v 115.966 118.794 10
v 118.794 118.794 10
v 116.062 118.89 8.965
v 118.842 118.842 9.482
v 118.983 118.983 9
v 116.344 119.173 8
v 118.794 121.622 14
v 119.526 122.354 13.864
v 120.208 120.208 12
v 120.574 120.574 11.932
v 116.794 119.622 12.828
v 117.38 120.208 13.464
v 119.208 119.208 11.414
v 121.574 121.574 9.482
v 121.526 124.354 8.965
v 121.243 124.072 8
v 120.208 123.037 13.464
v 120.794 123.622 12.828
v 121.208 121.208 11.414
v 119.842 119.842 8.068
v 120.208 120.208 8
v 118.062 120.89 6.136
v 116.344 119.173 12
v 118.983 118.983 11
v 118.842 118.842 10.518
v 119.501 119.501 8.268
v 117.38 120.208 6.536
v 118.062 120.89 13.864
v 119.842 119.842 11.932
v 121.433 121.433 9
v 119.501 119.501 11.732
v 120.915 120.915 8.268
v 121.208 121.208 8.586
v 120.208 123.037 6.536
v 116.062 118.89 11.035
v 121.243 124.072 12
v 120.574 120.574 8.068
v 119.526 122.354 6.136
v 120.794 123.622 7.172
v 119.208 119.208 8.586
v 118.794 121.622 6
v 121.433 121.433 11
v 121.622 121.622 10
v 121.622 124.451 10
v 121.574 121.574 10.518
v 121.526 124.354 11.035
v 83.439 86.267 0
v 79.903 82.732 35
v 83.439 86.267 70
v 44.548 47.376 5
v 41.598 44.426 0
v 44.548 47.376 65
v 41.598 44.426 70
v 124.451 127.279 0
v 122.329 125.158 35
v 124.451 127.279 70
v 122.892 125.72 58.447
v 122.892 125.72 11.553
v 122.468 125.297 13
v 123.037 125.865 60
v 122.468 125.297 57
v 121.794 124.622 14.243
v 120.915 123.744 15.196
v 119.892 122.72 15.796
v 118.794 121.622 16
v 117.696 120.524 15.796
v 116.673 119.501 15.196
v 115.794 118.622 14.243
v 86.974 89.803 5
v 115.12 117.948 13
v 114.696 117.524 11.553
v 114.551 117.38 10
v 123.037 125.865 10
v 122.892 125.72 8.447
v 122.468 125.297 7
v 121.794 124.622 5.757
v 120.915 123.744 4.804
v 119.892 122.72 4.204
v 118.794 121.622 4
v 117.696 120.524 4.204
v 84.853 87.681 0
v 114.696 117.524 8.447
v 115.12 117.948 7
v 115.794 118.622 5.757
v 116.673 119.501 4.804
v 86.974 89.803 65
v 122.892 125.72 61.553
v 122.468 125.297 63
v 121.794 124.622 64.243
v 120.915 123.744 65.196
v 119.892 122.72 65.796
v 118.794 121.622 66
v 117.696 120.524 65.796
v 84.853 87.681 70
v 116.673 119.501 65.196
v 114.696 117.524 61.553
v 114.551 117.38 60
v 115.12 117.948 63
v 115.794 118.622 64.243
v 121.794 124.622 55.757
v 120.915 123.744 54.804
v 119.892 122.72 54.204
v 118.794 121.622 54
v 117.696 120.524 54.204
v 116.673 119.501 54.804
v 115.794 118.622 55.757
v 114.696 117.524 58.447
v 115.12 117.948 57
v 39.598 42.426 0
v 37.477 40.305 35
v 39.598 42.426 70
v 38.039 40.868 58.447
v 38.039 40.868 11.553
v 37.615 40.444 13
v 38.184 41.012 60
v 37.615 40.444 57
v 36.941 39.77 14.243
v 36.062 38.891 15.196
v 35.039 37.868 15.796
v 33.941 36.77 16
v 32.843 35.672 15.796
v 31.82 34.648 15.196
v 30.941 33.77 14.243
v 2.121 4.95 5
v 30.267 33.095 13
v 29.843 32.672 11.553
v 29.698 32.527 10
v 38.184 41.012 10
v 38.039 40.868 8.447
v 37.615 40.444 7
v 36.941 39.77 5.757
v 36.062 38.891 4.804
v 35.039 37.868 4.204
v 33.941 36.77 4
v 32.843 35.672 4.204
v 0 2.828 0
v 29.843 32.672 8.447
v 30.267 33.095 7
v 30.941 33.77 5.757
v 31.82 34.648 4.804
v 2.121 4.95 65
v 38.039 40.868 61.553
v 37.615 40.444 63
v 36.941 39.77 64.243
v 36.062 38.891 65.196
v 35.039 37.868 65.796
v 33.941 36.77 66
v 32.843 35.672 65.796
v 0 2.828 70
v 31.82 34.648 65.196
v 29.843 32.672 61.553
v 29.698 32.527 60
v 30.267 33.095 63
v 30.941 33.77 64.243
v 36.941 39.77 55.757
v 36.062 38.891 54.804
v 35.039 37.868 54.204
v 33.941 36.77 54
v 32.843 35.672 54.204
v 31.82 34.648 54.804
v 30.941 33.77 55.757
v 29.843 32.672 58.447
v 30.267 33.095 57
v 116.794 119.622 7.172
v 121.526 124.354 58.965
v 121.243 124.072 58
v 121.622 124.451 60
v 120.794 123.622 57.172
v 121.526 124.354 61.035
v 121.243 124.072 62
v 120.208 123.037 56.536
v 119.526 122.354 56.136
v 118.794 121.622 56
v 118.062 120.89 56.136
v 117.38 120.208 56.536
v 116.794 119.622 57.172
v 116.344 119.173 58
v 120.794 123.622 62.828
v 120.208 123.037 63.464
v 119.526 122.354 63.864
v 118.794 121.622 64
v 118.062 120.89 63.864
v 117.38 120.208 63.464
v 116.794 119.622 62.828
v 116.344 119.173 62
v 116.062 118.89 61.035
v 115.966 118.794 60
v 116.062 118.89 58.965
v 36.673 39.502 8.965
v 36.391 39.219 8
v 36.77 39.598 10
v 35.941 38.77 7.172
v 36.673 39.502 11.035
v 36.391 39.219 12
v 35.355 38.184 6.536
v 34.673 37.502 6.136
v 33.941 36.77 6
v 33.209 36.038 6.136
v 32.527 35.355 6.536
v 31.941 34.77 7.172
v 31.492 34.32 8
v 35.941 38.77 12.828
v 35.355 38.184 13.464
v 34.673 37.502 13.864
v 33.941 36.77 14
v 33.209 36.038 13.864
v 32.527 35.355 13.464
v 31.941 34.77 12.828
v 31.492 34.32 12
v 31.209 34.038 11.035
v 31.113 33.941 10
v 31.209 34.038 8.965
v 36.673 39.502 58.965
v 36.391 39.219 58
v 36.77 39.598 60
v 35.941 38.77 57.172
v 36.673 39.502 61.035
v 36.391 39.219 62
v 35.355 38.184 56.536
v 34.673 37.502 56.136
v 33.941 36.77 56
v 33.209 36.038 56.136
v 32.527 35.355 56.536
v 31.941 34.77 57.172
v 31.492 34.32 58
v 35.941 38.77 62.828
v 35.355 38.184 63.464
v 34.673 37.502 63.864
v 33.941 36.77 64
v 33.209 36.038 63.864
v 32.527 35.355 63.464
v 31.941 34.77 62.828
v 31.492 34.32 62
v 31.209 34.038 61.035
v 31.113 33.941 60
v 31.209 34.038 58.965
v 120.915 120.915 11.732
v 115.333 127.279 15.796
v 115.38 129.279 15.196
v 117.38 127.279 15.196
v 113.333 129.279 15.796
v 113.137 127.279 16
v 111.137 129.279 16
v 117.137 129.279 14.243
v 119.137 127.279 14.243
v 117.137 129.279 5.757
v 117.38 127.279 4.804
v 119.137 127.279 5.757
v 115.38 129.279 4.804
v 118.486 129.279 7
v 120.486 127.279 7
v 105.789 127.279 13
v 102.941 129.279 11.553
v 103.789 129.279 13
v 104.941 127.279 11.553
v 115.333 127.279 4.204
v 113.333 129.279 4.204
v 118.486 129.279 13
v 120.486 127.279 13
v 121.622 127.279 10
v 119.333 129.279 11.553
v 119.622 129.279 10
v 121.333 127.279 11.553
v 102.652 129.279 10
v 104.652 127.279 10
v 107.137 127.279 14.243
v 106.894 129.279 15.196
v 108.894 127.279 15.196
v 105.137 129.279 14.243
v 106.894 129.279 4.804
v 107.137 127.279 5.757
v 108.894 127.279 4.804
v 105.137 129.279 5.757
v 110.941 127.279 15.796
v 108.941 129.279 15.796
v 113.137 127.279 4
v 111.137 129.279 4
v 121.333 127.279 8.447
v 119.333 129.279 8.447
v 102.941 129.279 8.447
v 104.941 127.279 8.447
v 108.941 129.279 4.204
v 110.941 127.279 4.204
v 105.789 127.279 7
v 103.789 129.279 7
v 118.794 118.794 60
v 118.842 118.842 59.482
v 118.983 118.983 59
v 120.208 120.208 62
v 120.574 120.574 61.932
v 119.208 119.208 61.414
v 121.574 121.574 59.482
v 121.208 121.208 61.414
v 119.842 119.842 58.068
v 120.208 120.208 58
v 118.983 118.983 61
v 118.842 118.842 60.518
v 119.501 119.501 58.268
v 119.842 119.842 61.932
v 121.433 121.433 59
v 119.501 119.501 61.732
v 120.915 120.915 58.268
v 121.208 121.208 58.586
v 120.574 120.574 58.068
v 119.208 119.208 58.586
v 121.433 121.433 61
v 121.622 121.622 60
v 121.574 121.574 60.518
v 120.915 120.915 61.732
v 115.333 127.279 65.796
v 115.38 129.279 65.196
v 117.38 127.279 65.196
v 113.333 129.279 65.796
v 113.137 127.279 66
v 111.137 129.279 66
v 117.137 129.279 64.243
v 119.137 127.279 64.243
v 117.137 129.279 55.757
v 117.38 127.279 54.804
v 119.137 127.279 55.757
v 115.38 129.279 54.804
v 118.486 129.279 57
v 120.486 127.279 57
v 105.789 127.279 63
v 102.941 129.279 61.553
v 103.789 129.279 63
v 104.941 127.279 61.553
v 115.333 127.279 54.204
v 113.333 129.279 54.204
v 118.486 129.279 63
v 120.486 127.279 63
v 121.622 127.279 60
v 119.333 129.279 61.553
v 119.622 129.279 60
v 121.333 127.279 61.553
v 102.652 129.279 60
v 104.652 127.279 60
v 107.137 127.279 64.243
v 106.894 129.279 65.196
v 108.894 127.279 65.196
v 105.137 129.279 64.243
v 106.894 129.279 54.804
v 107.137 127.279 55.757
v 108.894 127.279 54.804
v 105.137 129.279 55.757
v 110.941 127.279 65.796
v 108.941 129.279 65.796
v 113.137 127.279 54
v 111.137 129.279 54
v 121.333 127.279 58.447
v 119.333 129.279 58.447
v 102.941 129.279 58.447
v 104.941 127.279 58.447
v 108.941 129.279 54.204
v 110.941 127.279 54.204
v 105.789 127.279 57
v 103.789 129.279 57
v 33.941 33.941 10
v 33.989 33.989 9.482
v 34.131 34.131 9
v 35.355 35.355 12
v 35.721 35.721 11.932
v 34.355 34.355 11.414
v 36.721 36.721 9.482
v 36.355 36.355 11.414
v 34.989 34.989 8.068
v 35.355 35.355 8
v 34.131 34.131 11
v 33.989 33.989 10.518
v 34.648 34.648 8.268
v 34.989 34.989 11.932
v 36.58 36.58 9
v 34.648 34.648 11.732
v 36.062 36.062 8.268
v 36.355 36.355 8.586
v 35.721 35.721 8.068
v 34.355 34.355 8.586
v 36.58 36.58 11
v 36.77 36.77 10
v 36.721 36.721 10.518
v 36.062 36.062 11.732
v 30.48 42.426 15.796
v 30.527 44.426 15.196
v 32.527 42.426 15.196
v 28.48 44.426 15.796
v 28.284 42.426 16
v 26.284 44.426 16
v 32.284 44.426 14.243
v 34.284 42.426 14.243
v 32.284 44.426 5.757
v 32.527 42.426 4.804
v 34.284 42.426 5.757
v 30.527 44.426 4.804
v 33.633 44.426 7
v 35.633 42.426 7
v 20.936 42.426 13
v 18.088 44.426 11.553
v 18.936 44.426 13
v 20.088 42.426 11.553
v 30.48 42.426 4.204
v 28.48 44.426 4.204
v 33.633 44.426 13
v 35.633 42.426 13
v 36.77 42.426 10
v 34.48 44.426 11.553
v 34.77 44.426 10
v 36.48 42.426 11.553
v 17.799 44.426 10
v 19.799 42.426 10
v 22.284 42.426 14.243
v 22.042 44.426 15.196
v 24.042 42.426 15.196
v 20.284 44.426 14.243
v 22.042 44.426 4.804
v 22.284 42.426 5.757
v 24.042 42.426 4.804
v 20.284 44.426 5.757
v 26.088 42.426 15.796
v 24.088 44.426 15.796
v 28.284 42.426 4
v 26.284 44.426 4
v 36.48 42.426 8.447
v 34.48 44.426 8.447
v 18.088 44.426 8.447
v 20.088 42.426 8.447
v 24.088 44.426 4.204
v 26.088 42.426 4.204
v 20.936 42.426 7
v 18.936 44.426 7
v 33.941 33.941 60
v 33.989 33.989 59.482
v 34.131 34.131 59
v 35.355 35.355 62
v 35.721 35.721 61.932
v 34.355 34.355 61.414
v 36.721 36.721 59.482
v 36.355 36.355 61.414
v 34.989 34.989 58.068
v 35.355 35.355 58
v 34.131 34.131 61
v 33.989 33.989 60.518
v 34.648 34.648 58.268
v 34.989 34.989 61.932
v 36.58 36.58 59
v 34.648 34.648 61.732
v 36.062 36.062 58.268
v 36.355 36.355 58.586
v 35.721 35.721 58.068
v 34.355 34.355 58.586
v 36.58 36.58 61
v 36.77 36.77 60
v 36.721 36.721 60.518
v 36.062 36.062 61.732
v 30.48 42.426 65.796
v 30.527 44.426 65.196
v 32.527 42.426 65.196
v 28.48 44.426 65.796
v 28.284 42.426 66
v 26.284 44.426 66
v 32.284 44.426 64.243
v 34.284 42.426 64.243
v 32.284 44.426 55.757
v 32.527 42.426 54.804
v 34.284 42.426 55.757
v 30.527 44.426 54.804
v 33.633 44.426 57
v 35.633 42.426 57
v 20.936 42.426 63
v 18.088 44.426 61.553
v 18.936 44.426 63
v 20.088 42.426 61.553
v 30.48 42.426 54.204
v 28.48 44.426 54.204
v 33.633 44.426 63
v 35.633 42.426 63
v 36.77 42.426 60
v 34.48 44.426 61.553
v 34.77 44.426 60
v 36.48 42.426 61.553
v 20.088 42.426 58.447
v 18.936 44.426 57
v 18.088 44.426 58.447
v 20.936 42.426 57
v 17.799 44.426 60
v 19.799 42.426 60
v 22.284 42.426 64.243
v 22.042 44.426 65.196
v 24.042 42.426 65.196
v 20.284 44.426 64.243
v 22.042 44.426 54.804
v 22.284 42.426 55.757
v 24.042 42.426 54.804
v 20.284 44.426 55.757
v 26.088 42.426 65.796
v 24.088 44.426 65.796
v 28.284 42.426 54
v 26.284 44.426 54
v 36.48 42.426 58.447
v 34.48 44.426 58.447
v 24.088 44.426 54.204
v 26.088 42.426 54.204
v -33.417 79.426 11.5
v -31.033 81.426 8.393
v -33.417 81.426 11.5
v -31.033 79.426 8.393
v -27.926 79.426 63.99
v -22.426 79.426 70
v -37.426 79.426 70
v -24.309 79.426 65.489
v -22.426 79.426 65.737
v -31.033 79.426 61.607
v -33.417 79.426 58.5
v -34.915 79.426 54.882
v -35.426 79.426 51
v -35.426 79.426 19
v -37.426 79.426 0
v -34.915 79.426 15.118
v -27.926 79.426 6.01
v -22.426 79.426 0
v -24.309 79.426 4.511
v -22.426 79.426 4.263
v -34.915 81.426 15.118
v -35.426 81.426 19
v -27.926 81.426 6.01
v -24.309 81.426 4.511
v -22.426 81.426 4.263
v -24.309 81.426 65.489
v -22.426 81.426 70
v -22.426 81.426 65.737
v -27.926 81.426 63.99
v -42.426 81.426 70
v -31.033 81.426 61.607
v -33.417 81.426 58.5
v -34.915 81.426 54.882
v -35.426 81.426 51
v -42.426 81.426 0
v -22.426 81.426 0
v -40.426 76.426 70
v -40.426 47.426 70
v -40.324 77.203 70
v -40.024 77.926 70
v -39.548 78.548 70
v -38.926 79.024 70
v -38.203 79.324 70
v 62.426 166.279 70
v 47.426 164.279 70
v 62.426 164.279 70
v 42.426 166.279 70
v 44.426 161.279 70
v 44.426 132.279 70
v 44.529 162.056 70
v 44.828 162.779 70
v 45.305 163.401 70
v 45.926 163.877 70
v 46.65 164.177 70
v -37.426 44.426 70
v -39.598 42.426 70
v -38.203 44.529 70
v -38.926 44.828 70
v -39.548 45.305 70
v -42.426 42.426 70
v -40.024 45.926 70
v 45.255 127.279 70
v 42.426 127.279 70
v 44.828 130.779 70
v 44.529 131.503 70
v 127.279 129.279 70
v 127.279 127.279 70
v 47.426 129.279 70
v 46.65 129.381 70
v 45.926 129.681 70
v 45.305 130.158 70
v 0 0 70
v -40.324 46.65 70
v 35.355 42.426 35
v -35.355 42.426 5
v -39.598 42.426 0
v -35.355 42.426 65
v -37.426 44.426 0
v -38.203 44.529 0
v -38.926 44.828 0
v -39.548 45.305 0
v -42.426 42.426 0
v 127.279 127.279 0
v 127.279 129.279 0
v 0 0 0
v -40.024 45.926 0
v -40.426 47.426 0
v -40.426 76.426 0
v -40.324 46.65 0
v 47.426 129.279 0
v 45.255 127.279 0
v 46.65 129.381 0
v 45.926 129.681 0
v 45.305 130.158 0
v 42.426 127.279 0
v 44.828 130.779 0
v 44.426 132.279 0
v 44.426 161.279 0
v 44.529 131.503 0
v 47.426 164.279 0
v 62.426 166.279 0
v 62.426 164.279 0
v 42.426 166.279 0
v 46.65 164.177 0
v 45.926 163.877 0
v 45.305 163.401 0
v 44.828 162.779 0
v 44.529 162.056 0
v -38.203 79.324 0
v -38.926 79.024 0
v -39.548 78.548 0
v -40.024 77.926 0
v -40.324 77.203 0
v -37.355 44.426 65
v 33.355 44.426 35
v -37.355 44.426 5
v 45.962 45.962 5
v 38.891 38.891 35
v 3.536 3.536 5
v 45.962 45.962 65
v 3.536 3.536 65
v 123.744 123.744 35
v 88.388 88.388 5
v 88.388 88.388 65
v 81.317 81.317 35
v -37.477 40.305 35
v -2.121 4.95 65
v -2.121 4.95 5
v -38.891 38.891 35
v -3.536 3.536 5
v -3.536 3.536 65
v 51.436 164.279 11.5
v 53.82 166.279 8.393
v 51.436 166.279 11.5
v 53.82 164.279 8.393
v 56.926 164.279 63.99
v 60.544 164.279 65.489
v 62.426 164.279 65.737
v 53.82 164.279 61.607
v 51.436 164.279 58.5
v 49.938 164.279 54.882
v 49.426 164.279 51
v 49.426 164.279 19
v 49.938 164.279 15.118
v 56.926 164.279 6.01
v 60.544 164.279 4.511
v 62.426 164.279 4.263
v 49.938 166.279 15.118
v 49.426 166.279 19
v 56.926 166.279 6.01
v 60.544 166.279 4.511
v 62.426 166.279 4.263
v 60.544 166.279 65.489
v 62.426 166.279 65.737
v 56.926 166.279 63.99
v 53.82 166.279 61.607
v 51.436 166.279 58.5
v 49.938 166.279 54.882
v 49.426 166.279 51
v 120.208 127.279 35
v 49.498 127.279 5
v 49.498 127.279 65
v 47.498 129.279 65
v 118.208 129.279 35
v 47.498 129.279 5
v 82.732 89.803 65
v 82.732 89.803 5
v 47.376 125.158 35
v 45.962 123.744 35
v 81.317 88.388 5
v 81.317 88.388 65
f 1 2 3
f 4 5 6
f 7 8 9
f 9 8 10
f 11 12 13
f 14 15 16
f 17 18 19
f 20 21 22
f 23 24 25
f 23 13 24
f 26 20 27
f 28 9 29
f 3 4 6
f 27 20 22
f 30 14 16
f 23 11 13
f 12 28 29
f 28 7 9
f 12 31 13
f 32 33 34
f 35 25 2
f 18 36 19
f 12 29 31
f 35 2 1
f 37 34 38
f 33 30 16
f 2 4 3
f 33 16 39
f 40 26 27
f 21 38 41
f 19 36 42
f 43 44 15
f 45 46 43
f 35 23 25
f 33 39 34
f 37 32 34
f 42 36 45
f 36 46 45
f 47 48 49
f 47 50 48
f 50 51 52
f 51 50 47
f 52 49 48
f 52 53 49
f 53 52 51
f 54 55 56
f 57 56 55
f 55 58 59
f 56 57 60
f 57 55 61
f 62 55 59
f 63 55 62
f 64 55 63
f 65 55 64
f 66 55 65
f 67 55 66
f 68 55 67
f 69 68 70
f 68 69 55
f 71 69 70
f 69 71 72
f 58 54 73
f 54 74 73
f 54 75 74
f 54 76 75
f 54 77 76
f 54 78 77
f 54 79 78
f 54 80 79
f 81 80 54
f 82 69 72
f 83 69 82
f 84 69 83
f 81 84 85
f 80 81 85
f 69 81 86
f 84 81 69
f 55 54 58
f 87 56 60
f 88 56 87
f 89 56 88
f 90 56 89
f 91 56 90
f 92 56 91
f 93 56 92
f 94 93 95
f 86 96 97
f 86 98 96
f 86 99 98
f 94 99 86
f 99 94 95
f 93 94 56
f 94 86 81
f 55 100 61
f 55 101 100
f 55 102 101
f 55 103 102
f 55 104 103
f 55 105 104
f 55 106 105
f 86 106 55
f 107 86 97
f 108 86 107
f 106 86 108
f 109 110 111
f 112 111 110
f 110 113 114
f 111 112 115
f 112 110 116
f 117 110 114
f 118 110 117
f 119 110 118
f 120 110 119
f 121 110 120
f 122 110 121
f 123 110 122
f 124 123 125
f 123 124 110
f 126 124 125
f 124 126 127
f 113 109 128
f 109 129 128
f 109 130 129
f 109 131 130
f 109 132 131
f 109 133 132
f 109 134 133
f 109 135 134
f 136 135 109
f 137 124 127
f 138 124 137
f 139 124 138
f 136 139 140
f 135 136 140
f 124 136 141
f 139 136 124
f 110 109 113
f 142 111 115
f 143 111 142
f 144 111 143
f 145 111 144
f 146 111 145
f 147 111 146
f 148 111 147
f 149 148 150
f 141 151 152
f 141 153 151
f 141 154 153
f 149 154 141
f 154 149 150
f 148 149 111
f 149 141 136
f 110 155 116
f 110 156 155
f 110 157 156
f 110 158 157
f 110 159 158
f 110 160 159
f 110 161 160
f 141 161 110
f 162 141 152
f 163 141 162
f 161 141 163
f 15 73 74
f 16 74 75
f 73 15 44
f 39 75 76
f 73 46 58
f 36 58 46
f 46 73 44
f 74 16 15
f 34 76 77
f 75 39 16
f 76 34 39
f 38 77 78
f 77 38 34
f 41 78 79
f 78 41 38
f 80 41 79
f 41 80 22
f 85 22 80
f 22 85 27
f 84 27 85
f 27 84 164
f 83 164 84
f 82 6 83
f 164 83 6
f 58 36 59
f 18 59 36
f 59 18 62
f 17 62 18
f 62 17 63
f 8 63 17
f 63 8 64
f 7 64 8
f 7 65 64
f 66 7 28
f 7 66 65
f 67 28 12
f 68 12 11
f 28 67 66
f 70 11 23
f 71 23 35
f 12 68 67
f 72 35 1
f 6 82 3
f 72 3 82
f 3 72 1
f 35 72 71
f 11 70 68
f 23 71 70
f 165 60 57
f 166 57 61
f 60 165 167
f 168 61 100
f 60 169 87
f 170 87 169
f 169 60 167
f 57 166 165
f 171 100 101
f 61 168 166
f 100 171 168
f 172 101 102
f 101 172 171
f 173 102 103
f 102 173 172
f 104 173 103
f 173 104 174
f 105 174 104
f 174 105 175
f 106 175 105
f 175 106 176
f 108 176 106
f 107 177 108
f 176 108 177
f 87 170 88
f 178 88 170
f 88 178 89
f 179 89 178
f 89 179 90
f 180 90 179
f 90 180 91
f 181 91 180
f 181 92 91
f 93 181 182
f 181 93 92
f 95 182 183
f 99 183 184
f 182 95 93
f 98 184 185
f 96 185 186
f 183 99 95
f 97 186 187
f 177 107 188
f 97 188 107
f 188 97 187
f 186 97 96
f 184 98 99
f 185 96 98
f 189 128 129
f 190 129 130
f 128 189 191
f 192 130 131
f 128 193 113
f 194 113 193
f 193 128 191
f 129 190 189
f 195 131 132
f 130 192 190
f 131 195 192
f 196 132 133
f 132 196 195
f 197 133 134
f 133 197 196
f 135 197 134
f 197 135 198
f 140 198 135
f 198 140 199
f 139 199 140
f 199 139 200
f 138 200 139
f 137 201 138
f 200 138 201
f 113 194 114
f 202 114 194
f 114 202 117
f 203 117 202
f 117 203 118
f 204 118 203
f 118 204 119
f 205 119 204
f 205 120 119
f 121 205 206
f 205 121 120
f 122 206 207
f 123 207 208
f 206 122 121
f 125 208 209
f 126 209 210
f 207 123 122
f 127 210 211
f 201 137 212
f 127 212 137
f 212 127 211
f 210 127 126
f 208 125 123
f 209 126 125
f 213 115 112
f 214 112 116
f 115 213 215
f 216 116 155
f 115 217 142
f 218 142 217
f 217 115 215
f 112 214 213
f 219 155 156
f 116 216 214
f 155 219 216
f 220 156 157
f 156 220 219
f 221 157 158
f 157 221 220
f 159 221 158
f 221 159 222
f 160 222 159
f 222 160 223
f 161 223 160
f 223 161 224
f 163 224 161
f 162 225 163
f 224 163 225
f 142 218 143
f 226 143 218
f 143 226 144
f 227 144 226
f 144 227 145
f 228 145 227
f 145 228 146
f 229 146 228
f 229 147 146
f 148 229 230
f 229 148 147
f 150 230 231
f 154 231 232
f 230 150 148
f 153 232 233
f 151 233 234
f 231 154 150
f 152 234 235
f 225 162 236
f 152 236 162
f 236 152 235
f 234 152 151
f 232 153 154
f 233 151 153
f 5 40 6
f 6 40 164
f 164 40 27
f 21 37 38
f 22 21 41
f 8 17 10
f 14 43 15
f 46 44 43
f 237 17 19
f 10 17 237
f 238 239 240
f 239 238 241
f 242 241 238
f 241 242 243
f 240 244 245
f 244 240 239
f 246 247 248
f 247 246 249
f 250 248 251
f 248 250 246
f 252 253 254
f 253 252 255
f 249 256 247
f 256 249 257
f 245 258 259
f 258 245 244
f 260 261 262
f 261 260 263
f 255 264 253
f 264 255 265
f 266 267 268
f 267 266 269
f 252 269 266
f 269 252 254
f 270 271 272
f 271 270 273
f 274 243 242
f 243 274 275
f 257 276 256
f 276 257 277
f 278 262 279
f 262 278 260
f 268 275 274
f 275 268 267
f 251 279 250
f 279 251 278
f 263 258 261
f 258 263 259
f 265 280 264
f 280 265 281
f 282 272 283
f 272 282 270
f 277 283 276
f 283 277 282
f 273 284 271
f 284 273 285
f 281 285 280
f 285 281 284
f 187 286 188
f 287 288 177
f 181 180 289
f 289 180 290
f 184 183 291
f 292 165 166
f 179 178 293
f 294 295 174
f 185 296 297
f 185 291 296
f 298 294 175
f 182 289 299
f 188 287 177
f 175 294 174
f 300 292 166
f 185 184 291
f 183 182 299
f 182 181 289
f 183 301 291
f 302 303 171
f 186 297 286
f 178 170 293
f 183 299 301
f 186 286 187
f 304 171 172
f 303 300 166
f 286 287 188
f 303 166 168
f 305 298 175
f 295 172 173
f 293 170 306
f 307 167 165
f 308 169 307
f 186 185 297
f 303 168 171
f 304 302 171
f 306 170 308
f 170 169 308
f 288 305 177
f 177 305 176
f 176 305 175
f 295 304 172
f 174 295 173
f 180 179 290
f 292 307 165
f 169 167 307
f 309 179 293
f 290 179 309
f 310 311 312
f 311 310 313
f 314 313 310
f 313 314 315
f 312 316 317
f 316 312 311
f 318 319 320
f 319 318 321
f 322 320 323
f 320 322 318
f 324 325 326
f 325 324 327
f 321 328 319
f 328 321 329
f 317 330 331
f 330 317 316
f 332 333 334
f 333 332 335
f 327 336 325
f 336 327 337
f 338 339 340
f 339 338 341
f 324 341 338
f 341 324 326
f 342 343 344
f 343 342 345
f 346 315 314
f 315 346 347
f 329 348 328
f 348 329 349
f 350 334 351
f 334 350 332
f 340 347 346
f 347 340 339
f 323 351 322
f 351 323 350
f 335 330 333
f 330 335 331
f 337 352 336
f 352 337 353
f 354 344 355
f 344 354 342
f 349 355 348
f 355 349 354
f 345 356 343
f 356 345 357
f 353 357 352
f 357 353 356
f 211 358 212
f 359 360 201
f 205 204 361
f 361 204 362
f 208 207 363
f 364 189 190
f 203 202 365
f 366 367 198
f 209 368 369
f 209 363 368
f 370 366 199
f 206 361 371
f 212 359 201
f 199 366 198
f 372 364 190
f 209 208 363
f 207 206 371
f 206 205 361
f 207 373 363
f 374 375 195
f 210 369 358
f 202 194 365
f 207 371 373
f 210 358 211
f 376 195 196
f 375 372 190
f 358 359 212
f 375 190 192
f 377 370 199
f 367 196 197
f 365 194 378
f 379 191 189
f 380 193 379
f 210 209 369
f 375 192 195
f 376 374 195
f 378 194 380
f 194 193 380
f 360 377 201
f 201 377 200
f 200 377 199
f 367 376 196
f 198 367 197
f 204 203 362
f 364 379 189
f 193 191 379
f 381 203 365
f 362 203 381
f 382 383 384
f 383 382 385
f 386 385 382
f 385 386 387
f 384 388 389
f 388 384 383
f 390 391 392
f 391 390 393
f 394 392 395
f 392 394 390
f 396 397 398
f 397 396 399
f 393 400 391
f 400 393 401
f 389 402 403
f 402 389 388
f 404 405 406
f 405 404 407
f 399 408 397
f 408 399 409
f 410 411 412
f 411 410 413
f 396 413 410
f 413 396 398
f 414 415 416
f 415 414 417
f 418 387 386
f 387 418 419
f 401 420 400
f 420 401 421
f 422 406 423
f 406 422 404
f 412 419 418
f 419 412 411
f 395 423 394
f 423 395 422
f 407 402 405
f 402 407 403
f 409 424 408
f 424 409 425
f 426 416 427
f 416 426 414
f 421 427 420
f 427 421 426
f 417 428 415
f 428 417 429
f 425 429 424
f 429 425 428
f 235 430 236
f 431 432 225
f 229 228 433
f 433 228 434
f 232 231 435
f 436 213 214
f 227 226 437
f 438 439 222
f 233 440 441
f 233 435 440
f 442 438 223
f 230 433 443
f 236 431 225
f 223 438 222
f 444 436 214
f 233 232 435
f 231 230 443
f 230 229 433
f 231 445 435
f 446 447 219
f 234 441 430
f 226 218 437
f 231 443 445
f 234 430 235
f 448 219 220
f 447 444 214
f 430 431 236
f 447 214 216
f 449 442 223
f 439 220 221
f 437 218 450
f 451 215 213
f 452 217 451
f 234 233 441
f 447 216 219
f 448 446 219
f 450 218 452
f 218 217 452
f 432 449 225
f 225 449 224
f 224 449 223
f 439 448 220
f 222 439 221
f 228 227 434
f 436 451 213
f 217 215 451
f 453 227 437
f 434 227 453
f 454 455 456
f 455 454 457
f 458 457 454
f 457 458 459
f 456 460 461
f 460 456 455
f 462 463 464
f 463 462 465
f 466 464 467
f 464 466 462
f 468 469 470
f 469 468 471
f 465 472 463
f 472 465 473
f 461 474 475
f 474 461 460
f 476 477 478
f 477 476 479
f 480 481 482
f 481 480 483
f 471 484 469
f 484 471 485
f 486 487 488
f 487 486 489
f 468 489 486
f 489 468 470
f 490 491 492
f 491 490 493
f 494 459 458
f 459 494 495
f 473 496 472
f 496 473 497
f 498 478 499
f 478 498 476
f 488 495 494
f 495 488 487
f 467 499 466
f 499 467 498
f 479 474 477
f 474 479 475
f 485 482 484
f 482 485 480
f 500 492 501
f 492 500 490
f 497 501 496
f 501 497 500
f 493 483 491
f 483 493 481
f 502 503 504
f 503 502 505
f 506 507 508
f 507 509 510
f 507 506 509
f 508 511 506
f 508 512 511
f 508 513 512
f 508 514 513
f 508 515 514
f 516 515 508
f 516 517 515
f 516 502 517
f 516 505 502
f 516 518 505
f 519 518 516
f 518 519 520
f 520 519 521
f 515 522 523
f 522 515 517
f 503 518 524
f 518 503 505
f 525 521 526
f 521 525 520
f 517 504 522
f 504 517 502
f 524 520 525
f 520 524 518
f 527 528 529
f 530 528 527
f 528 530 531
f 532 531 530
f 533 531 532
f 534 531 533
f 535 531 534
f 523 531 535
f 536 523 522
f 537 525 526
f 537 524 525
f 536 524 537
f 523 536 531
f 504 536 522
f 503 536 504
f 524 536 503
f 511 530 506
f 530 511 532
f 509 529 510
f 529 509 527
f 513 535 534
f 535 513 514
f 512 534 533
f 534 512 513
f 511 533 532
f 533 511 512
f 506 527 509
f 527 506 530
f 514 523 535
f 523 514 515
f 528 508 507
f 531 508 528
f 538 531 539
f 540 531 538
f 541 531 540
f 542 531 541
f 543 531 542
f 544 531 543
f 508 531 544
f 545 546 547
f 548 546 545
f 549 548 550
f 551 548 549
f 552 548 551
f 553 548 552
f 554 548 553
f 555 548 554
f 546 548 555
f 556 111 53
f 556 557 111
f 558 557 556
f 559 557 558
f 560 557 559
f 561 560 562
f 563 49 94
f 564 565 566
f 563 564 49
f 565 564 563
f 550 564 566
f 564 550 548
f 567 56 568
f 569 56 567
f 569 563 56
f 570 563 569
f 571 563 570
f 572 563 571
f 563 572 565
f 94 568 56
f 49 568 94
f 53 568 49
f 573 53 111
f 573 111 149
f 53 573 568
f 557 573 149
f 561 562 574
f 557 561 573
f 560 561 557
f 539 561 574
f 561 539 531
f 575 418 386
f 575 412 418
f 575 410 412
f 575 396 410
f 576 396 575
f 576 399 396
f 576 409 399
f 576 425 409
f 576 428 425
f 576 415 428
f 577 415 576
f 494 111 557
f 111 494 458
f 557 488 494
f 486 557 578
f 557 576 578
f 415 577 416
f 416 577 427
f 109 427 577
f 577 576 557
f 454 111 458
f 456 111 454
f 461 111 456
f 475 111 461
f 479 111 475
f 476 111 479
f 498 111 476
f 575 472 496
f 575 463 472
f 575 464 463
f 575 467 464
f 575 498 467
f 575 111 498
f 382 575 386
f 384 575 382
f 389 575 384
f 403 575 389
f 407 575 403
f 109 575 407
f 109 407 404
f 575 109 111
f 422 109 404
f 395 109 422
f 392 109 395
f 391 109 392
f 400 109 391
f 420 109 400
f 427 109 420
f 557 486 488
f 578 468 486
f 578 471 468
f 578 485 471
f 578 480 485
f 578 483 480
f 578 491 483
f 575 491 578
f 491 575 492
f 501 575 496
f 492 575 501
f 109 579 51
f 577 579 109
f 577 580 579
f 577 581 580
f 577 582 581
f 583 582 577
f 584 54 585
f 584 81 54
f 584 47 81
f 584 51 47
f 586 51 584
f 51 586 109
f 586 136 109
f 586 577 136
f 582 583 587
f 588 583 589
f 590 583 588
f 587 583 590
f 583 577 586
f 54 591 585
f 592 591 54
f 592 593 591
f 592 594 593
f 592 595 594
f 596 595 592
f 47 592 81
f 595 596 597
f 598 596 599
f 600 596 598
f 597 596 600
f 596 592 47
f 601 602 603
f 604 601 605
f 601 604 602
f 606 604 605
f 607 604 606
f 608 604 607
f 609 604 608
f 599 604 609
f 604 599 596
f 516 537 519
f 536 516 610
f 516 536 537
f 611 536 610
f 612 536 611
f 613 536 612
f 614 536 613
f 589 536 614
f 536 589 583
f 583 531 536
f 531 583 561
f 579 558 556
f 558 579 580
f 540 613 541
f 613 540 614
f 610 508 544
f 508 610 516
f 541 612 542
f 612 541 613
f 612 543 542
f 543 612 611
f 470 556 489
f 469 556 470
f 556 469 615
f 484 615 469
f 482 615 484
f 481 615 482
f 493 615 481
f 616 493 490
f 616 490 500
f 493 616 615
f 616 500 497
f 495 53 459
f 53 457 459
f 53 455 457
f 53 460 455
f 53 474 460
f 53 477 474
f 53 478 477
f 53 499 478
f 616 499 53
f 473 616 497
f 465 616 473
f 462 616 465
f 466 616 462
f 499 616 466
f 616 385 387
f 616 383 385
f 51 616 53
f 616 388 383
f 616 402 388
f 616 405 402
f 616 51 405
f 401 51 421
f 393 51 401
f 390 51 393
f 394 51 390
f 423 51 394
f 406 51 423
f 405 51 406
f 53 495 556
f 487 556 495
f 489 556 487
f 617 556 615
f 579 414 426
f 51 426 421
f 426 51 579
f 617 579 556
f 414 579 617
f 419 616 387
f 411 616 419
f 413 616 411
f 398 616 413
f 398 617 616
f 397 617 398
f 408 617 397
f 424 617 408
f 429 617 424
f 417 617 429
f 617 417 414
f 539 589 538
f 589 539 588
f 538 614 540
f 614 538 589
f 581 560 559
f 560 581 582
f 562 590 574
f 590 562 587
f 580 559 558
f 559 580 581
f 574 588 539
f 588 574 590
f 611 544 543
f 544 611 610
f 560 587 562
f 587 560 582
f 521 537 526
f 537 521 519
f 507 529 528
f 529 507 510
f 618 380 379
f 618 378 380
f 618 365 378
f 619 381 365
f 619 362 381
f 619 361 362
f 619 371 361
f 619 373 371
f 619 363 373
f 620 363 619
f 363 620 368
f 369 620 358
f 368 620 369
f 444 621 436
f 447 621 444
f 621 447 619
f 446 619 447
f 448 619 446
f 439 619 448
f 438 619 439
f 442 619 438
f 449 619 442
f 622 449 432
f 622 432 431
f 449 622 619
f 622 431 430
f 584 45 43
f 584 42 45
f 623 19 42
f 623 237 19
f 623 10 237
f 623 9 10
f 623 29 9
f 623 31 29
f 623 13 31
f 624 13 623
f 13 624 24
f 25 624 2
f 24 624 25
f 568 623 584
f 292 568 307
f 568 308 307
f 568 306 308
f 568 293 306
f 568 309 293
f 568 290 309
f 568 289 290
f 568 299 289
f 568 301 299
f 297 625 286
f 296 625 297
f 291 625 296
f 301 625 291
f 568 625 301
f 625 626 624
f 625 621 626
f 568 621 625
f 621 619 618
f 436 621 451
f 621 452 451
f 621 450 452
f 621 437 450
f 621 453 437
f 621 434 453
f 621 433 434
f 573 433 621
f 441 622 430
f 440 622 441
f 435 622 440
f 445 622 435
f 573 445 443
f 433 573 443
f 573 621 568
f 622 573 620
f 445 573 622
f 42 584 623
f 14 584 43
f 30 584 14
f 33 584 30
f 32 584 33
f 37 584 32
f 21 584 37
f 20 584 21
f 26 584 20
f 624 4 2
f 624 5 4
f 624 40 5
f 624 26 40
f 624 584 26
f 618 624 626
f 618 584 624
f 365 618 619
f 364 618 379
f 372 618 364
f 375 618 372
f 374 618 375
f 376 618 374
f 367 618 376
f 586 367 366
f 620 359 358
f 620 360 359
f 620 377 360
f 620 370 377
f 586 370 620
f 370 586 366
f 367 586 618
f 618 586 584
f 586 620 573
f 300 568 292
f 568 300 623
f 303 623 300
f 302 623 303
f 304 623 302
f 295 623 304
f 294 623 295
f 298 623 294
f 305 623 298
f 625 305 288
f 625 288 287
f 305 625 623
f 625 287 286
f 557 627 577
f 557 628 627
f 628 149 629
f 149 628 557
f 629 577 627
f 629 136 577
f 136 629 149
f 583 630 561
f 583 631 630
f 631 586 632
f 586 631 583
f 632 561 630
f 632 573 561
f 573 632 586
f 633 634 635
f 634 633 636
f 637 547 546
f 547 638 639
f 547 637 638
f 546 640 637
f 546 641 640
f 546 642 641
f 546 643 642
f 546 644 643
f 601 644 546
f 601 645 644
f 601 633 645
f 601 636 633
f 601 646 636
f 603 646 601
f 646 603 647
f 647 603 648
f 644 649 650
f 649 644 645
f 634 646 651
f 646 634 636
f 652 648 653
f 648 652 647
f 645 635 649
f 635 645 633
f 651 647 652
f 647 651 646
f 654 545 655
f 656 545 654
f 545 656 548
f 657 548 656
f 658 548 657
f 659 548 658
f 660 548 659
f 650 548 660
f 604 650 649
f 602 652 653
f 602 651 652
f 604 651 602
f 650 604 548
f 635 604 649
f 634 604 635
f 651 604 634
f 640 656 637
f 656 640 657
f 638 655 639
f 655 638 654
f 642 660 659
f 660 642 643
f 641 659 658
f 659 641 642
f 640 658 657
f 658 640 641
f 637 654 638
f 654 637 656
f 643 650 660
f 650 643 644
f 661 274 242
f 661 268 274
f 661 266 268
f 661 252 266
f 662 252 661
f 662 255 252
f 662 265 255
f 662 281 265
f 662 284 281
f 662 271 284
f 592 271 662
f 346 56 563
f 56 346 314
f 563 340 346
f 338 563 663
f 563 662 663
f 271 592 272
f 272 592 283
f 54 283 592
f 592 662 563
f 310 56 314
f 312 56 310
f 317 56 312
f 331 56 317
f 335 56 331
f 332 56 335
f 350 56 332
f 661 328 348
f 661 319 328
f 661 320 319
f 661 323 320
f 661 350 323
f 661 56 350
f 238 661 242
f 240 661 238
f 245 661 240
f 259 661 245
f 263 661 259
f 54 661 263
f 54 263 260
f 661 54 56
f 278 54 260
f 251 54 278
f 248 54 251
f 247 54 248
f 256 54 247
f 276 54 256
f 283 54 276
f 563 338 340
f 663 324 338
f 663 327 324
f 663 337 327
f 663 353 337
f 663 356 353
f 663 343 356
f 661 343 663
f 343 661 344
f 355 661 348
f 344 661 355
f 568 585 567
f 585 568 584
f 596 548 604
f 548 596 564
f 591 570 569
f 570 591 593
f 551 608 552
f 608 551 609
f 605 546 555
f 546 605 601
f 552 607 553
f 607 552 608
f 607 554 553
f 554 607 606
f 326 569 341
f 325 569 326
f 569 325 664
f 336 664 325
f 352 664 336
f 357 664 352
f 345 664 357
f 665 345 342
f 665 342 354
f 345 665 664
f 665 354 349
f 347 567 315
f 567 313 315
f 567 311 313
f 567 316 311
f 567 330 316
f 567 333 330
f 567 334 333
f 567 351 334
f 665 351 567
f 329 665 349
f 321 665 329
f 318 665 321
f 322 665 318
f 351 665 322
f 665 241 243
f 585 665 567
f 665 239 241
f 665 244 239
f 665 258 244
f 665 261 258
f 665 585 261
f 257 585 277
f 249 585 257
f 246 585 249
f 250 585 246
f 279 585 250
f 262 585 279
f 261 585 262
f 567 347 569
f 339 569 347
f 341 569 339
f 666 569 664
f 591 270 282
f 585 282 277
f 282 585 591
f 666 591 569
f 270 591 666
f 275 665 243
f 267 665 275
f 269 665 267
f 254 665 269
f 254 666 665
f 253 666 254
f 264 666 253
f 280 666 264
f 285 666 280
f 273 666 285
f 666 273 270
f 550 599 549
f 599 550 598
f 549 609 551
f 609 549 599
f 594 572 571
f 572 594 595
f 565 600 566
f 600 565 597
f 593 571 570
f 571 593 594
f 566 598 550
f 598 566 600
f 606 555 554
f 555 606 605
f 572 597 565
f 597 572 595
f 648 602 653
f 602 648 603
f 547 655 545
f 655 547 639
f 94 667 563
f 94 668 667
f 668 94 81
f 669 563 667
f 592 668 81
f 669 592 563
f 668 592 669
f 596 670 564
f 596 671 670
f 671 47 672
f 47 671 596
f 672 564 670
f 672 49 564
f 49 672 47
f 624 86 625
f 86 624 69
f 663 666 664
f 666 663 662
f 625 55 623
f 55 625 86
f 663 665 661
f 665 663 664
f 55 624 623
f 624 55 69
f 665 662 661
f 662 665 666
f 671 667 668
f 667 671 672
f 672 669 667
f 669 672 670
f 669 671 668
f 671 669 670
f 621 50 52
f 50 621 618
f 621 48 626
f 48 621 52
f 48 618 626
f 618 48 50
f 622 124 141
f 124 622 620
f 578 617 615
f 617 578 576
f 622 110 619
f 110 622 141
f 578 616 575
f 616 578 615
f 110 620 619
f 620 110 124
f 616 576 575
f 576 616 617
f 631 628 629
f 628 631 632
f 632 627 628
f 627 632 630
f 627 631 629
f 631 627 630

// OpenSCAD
width = 70;
height = 180;
controller_thickness = 39;
$fn = 24;

rotate([0, -90, -45])

difference() {
    union() {
        cube([width, height, 2]);

        translate([0, height*2/3, 0])
        hanger();

        hanger();
    }
    
    diff_thickness = height/3;

    // top
    translate([0, height*2/3, 0])
    triangle(5, diff_thickness);
    
    translate([0, height*2/3+2, 0])
    rotate([90, 0, 0])
    triangle(5);
    
    translate([10, height-10, 2]) {
        screw_hole(4, 10);
        cylinder(100, 6, 6);
    }
    translate([width-10, height-10, 2]) {
        screw_hole(4, 10);
        cylinder(100, 6, 6);
    }

    // mid
    translate([0, height/3, 0])
    triangle(5);

    // bottom
    triangle(5, diff_thickness);
    
    translate([0, 2, 0])
    rotate([90, 0, 0])
    triangle(5);
    
    translate([10, height/3-10, 2]) {
        screw_hole(4, 10);
        cylinder(100, 6, 6);
    }
    translate([width-10, height/3-10, 2]) {
        screw_hole(4, 10);
        cylinder(100, 6, 6);
    }
}

module triangle(_margin, _thickness=2) {
    color([1, 0, 0])
    linear_extrude(_thickness)
    polygon([
        [_margin, _margin],          // left
        [width/2, height/3-_margin], // top
        [width-_margin, _margin],    // right
    ]);
}

module hanger() {
    _height = height/3/cos(45);
    
    color([1, 0, 0])
    translate([0, 0, _height*sin(45)])
    rotate([-45, 0, 0])
    difference()
    {
        cube([width, _height, controller_thickness]);
        
        cylinder_r = 3;
        translate([0, 2+cylinder_r, 2+cylinder_r])
        minkowski() {
            cube([width, _height-2, controller_thickness-4-cylinder_r*2]);
            rotate([0, 90, 0])
            cylinder(width, cylinder_r, cylinder_r);
        }
        
        translate([0, 20, controller_thickness-2])
        cube([width, _height, 2]);
        
        union() {
            diameter = width/2-5;
            translate([diameter/2+4, diameter/2+7, controller_thickness-2])
            cylinder(2, diameter/2, diameter/2);

            translate([width-(diameter/2+4), diameter/2+7, controller_thickness-2])
            cylinder(2, diameter/2, diameter/2);

            translate([diameter/2+4, 7, controller_thickness-2])
            cube([diameter+2, diameter/2, 20]);
        }
    }
    
    cube([width, 2, height/3]);
}

module screw_hole(hole_width=4, hole_height=10) {
    head_height = hole_width*tan(45)/2;
    translate([0, 0, -hole_height]) {
        // head
        translate([0, 0, hole_height-head_height])
        cylinder(head_height, hole_width/2, hole_width);
        // screw
        cylinder(hole_height-head_height, hole_width/2, hole_width/2);
    }
}
